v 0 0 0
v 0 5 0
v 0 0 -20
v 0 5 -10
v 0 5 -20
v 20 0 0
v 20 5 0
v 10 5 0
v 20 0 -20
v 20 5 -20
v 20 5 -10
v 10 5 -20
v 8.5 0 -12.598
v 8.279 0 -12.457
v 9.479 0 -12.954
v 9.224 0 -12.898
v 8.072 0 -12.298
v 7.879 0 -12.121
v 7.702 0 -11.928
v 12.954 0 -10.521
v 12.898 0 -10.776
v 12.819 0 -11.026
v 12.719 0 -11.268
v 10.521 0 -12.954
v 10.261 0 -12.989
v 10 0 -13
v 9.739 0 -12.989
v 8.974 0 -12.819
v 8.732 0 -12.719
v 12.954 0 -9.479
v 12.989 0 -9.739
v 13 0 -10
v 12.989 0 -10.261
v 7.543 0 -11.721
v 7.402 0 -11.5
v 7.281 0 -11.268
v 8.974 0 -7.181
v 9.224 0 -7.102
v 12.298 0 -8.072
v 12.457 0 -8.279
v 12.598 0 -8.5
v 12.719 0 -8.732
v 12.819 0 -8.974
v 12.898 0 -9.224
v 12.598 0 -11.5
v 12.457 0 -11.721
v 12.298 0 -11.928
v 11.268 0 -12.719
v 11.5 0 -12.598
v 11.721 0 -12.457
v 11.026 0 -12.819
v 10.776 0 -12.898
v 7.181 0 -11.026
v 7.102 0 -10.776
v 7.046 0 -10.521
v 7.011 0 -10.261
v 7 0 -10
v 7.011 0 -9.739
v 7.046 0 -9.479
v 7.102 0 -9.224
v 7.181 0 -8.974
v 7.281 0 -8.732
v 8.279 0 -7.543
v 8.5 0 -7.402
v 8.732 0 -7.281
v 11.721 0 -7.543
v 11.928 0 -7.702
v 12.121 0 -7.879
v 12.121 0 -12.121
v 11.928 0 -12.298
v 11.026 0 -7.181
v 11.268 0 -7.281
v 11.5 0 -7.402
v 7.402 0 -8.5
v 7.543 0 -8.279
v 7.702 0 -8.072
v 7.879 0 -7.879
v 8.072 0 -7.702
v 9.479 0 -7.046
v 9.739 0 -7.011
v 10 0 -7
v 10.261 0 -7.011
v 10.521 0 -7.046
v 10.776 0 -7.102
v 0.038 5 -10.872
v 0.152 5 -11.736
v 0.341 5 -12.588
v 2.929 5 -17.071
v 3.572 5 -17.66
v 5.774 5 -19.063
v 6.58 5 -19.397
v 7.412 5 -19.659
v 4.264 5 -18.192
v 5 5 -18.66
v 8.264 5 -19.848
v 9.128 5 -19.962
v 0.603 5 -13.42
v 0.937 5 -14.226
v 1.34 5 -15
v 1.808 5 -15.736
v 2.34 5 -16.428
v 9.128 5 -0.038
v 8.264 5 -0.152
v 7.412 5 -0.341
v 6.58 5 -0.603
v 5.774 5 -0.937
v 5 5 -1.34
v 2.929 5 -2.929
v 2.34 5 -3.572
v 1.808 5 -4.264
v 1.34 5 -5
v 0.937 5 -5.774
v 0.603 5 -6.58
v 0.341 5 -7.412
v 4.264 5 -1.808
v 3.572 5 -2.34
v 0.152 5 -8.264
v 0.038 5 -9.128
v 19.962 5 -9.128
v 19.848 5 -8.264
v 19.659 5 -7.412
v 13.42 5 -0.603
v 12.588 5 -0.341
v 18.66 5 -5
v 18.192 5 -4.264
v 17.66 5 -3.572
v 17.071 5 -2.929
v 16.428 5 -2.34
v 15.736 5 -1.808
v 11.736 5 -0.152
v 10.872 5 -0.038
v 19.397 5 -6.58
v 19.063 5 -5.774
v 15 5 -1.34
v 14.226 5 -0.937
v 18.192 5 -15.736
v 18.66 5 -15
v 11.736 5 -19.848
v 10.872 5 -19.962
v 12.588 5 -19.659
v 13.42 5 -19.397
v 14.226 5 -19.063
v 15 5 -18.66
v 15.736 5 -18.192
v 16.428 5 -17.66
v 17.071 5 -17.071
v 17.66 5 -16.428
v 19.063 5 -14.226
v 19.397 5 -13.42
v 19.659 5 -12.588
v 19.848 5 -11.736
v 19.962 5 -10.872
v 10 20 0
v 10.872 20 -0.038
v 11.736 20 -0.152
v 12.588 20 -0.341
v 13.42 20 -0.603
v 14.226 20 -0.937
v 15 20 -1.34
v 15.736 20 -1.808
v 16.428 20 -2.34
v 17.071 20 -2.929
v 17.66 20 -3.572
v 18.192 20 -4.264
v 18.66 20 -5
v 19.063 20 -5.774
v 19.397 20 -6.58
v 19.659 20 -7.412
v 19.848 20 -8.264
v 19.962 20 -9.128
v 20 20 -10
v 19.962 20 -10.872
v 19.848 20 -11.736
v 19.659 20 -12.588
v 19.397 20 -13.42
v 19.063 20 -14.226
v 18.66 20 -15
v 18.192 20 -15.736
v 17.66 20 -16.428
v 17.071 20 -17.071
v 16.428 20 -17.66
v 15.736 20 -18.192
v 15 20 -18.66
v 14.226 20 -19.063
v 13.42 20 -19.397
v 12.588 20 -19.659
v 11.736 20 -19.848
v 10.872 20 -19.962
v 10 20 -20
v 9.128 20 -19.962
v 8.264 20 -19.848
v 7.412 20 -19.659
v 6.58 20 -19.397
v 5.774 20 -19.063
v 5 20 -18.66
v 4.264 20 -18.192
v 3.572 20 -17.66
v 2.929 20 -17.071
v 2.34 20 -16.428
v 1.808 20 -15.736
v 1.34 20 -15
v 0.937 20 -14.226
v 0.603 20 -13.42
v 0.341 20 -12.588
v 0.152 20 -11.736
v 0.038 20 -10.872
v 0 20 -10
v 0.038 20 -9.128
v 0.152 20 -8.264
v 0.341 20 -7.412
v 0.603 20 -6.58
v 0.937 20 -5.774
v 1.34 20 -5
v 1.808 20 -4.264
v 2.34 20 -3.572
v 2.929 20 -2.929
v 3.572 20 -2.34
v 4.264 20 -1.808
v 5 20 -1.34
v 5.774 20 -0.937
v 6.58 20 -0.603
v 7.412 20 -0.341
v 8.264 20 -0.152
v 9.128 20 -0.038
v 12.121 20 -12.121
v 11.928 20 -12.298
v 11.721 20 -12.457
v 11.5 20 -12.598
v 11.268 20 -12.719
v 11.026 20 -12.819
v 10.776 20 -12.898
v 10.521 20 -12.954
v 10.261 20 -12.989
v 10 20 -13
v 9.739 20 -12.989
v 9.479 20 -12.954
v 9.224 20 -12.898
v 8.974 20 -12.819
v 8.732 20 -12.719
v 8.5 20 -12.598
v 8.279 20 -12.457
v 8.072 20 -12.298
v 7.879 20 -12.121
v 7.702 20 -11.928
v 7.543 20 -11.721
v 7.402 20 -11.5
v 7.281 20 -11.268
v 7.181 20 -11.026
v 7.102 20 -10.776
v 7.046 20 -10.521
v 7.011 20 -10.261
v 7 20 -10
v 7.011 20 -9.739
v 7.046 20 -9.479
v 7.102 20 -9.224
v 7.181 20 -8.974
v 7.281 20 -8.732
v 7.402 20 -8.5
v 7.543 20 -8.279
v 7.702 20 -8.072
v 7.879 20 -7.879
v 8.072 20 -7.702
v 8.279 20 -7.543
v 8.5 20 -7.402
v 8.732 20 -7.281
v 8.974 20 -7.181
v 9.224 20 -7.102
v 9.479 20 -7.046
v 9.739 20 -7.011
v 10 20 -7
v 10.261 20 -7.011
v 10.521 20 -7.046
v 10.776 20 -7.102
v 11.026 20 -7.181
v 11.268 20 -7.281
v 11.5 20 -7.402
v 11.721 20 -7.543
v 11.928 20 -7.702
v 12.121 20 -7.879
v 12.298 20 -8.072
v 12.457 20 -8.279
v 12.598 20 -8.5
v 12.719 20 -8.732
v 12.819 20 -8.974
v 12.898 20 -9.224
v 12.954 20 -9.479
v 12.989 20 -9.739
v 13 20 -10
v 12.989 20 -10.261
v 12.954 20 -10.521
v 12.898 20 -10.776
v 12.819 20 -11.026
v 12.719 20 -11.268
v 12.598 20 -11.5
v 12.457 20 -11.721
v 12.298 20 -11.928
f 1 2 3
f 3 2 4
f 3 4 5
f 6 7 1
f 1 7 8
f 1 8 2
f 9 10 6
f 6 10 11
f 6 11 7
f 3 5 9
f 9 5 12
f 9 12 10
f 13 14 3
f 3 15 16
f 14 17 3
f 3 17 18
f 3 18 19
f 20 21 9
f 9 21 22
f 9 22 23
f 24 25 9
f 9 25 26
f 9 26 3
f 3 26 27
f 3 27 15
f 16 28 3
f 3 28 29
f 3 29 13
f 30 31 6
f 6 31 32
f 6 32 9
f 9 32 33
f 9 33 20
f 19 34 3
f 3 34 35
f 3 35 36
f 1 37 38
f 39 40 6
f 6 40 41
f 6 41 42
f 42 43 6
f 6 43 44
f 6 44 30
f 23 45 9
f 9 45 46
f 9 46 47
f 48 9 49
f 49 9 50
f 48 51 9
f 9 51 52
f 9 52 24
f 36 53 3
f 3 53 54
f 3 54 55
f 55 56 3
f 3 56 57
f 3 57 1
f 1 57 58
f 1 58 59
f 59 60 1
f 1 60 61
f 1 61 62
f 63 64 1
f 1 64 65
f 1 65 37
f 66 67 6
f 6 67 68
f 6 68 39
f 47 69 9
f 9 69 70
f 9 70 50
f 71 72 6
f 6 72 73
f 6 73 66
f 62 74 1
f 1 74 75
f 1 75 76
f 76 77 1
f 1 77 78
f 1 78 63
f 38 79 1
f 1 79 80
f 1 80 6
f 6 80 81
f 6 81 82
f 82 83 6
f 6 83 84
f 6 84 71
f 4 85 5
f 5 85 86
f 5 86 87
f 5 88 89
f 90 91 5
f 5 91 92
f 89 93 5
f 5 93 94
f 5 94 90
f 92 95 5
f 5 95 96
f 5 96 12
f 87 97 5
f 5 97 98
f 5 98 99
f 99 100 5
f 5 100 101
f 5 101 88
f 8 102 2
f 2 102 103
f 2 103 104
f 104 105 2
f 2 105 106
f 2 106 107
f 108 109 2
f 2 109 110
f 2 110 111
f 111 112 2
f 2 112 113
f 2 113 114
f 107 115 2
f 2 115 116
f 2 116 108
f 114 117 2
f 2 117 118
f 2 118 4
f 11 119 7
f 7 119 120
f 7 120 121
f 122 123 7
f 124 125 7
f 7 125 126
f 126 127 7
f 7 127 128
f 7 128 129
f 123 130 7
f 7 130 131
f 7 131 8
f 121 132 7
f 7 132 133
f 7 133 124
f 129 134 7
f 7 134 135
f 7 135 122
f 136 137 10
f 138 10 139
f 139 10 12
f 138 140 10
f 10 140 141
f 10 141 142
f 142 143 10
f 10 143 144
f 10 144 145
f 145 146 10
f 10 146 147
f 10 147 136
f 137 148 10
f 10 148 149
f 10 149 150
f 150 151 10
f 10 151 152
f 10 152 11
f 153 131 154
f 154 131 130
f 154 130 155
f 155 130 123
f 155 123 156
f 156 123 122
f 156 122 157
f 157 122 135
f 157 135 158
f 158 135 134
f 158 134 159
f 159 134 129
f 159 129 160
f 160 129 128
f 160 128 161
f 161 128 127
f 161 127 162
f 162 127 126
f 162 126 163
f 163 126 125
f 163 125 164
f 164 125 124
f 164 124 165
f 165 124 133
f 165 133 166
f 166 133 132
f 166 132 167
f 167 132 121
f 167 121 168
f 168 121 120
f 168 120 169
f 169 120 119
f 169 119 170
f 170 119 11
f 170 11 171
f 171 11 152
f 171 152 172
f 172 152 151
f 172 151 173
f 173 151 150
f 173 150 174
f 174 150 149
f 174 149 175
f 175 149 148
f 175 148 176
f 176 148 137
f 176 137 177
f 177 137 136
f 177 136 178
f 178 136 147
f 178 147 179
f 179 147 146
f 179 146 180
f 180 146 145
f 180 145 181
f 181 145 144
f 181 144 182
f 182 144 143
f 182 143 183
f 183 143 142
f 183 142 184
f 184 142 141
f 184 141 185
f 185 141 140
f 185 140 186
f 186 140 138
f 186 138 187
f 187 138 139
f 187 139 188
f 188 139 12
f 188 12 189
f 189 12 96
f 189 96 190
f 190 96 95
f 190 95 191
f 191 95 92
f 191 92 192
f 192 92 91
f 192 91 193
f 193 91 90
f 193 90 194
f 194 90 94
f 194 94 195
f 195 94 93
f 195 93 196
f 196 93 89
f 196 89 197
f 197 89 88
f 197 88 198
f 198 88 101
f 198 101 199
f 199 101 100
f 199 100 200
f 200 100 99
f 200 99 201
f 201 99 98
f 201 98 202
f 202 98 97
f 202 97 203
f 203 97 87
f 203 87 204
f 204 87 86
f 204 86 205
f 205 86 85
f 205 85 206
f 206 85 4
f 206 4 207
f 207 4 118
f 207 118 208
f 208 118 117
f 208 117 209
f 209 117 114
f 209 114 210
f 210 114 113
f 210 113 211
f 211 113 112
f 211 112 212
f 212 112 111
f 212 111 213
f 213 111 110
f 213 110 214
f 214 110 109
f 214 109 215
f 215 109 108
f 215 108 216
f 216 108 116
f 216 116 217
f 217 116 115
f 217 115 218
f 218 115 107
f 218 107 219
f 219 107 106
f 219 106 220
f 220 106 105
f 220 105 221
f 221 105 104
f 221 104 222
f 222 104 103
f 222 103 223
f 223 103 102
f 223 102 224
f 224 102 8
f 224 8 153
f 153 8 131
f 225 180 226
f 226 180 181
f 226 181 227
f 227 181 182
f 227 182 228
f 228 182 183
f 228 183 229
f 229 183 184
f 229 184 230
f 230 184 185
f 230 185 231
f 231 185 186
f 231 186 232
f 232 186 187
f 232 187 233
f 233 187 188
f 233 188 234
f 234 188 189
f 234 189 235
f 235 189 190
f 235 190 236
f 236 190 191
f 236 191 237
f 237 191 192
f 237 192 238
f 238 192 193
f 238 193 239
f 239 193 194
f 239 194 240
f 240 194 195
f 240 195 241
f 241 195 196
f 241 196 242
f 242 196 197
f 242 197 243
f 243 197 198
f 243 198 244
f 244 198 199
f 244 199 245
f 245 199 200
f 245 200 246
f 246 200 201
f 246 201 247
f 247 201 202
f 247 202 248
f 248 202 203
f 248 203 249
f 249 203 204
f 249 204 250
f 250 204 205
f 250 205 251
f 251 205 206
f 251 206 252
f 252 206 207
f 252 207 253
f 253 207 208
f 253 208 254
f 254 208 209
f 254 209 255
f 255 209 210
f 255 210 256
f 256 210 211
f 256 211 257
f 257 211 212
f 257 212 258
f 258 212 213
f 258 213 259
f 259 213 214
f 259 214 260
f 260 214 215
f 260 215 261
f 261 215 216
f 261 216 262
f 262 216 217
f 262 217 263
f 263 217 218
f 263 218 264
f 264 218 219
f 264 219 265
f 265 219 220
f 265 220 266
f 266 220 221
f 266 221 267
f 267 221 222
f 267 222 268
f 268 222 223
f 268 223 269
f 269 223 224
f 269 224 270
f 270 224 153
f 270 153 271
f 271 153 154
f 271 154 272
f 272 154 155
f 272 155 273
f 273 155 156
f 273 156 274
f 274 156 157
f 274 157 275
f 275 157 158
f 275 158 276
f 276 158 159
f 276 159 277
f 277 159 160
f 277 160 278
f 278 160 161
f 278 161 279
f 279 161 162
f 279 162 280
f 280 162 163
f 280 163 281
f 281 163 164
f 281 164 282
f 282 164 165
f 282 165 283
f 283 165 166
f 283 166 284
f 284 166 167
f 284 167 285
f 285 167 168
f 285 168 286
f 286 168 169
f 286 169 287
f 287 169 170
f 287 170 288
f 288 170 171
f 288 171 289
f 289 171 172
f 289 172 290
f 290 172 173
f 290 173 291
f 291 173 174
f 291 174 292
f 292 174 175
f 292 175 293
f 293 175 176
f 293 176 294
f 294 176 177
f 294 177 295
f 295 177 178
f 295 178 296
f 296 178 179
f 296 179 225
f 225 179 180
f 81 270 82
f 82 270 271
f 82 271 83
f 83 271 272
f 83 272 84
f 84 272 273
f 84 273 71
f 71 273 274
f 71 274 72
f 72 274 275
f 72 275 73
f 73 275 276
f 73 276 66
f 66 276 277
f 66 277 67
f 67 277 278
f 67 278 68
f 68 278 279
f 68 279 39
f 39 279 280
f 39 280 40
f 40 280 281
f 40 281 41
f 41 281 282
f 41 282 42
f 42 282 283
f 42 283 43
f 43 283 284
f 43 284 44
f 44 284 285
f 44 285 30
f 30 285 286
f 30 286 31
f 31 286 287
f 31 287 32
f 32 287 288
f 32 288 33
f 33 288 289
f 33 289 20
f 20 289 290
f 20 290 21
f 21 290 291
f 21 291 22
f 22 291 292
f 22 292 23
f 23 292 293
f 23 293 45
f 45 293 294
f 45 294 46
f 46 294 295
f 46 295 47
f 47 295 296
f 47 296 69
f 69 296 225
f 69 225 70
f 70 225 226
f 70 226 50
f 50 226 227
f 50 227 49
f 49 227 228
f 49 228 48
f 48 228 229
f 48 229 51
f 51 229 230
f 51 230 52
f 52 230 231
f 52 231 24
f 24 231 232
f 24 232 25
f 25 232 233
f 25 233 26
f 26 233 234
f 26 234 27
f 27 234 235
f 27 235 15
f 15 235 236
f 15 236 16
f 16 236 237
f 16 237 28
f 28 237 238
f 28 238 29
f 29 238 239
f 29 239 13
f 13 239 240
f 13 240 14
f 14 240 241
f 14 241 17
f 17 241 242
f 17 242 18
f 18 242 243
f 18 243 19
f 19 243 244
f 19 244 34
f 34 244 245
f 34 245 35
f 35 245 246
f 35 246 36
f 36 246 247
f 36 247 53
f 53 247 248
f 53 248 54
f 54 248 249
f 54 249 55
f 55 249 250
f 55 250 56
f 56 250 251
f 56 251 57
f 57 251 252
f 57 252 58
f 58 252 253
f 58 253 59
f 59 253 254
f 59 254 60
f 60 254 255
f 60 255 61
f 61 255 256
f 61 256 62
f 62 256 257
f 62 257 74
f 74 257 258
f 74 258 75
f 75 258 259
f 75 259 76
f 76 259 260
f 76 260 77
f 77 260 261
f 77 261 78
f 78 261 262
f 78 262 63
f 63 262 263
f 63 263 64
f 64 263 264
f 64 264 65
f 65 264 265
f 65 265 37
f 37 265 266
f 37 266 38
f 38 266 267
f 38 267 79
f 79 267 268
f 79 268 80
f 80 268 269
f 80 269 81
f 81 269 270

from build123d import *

# Parameters (mm, degrees)
SKETCH1_W           = 20
SKETCH1_H           = 20
BOSS_EXTRUDE1_DEPTH = 20
SKETCH2_OUTSIDE_W   = 28.928
SKETCH2_OUTSIDE_H   = 28.928
SKETCH2_OUTSIDE_R   = 10
CUT_EXTRUDE1_DEPTH  = 15
SKETCH3_R           = 3
CUT_EXTRUDE2_DEPTH  = 21


with BuildPart() as part:
    # Sketch1 → Boss-Extrude1 (new body)
    with BuildSketch(Plane(origin=(0, 0, 0), x_dir=(1, 0, 0), z_dir=(0, 1, 0))):
        with Locations((10, 10)):
            Rectangle(SKETCH1_W, SKETCH1_H)
    extrude(amount=BOSS_EXTRUDE1_DEPTH)

    # Sketch2 outside → Cut-Extrude1 (cut)
    with BuildSketch(Plane(origin=(0, 20, 0), x_dir=(1, 0, 0), z_dir=(0, 1, 0))):
        with Locations((10, 10)):
            Rectangle(SKETCH2_OUTSIDE_W, SKETCH2_OUTSIDE_H)
        with Locations((10, 10)):
            Circle(SKETCH2_OUTSIDE_R, mode=Mode.SUBTRACT)
    extrude(amount=-CUT_EXTRUDE1_DEPTH, mode=Mode.SUBTRACT)

    # Sketch3 → Cut-Extrude2 (cut, through all)
    with BuildSketch(Plane(origin=(0, 20, 0), x_dir=(1, 0, 0), z_dir=(0, 1, 0))):
        with Locations((10, 10)):
            Circle(SKETCH3_R)
    extrude(amount=-CUT_EXTRUDE2_DEPTH, mode=Mode.SUBTRACT)


solid = part.part
